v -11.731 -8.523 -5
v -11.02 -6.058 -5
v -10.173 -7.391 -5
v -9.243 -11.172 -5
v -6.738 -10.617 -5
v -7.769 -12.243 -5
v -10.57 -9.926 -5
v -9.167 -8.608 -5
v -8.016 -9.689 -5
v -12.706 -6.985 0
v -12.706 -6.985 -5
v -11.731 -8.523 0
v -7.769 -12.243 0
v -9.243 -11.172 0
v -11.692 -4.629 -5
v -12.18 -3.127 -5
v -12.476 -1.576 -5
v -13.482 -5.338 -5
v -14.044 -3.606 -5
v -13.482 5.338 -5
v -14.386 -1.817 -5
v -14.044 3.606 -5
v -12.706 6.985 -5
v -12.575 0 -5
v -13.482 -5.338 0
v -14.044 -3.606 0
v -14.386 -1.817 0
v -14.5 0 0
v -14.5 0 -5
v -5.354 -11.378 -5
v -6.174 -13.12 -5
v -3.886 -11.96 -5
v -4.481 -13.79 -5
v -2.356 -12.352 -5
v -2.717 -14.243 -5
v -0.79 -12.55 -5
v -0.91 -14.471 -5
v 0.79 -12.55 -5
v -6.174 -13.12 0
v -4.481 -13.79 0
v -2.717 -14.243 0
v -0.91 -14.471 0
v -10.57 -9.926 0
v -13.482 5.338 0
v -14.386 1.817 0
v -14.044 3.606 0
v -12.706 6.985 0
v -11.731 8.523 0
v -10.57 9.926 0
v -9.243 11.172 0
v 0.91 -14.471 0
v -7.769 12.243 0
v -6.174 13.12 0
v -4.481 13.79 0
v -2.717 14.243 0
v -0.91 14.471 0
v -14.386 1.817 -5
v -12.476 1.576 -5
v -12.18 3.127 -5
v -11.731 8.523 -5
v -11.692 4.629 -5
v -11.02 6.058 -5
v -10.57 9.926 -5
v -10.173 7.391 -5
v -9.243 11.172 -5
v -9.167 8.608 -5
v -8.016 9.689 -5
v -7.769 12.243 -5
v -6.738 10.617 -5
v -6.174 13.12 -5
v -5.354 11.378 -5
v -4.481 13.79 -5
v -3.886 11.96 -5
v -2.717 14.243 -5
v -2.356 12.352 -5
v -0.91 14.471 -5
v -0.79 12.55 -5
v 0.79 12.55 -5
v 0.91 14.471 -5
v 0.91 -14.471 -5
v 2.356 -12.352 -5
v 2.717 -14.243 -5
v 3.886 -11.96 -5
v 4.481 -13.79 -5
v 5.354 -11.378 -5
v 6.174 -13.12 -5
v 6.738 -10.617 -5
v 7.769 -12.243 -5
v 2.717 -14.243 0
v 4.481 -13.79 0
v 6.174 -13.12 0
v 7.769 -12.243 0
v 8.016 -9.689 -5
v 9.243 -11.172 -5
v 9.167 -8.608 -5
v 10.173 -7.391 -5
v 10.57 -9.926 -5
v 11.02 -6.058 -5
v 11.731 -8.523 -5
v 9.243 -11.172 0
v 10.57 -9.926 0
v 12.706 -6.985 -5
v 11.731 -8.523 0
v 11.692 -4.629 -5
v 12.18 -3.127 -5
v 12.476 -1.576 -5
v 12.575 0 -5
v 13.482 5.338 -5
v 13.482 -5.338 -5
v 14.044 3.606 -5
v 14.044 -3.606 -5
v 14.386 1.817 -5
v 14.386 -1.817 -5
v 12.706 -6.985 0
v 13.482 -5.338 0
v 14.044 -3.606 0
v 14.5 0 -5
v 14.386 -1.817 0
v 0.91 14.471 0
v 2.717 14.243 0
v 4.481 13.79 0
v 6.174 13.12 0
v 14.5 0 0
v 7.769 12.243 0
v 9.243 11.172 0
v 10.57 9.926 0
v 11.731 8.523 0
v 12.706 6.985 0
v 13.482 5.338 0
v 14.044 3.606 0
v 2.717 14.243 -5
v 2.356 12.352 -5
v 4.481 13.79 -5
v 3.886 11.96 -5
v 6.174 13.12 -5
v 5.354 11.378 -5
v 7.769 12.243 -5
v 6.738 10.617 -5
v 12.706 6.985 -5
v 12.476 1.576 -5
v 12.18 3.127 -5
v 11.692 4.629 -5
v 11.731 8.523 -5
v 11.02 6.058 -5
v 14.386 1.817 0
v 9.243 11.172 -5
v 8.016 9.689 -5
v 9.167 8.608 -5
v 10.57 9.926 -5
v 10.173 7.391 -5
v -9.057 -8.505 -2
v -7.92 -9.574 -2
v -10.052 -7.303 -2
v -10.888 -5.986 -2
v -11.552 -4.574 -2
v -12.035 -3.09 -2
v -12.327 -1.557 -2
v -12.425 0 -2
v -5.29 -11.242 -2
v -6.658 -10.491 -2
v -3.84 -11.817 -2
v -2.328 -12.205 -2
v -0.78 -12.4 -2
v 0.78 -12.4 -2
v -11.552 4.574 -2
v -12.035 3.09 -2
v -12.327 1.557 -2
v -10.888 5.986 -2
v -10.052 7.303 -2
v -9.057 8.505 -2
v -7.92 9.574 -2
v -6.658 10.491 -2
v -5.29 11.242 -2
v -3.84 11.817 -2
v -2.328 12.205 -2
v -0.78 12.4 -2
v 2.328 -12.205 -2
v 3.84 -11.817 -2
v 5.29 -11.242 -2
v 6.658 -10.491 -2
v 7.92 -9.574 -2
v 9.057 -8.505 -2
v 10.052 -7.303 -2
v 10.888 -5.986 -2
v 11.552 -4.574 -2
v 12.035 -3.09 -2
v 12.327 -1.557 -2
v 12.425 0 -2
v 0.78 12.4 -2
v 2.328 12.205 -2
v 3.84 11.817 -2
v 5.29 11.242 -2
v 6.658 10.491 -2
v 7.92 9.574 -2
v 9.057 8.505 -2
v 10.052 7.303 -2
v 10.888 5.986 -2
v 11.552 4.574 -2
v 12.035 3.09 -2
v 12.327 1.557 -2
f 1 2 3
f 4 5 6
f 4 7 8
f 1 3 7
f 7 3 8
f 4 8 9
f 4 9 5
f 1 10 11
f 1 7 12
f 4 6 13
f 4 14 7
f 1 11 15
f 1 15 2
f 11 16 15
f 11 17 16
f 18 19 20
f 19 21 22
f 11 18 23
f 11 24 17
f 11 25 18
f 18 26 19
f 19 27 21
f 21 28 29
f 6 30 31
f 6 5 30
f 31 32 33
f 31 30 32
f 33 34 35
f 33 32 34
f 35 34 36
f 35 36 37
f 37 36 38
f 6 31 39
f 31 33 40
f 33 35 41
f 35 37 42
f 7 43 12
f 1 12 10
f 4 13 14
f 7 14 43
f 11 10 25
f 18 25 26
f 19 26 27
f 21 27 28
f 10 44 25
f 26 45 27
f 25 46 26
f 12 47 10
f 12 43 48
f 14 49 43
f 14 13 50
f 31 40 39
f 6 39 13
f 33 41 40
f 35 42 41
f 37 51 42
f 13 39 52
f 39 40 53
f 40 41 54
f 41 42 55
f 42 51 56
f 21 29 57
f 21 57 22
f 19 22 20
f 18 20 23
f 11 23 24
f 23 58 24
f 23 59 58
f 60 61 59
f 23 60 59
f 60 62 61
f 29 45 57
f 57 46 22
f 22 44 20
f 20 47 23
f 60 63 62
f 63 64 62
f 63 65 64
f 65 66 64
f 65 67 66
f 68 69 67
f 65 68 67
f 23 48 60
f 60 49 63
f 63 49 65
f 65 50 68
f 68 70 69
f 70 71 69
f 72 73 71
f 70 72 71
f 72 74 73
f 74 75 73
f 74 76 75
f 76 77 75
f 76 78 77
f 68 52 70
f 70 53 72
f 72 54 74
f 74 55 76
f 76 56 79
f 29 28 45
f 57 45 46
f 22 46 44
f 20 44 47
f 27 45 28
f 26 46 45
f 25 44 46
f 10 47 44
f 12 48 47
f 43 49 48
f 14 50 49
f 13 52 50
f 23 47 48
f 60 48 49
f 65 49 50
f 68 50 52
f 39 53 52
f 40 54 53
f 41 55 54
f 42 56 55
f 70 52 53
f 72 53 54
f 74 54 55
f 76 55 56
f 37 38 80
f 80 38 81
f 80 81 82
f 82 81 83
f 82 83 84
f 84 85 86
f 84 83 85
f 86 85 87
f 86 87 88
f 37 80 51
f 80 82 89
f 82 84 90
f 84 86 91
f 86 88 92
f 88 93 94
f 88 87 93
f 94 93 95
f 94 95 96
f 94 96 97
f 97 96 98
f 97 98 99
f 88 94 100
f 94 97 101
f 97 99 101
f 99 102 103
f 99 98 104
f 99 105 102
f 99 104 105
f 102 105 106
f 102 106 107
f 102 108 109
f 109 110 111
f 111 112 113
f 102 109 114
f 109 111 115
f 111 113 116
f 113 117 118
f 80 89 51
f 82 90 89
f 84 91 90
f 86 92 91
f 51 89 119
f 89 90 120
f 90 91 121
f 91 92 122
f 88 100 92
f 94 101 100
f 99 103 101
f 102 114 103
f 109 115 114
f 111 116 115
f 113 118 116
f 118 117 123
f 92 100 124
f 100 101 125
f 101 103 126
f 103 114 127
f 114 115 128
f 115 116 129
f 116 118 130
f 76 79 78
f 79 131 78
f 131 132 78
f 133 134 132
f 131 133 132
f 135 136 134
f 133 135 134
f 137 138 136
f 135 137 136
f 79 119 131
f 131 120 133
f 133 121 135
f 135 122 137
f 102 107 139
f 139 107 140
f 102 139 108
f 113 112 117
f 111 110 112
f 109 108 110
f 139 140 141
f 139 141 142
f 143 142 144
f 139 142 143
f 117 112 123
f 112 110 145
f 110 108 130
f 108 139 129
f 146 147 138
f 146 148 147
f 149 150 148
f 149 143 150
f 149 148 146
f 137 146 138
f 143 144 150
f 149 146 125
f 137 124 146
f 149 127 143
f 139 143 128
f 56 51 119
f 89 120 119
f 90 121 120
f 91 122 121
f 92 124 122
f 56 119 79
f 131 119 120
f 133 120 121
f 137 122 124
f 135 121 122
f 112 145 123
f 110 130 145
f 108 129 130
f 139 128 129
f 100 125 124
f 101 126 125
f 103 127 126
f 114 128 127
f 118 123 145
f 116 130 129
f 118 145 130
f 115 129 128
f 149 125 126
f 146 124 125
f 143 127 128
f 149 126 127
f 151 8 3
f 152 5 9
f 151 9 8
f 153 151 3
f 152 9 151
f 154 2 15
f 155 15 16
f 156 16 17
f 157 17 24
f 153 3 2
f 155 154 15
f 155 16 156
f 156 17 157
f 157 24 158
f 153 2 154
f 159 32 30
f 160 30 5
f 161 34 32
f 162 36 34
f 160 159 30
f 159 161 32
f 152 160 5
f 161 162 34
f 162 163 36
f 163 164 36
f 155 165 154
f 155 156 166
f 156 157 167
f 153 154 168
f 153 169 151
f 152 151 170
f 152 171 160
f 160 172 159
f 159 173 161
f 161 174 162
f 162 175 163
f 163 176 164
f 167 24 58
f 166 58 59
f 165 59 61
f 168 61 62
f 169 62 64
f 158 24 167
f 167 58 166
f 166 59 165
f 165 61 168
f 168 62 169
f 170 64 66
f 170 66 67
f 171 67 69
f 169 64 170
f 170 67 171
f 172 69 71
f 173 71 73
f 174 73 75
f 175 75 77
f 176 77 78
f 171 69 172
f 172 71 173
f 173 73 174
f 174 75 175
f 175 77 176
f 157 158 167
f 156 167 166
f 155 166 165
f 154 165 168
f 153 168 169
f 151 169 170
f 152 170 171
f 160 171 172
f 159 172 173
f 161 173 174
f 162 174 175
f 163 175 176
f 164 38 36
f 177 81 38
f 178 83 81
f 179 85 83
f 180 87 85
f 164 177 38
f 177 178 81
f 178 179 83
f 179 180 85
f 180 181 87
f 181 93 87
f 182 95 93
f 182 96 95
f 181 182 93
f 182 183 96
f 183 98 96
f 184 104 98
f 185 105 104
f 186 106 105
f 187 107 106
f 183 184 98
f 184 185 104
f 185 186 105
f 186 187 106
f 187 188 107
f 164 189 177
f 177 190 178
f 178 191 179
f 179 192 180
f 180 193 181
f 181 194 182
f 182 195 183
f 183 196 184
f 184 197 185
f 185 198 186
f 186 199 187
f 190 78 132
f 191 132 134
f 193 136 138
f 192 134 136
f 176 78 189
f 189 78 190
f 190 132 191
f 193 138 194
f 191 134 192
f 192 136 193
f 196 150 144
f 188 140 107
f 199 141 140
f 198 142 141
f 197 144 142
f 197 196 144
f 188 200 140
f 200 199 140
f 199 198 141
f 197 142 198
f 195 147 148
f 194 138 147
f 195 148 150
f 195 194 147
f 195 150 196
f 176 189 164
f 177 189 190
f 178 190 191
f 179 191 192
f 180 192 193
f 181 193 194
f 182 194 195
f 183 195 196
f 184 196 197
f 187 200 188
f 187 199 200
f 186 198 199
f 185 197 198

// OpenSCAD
$fn = 50;

difference() {
	union() {
		translate(v = [0, 0, -5.0]) {
			cylinder(h = 5, r = 14.5);
		}
	}
	union() {
		#translate(v = [0, 0, -5.0]) {
			cylinder(h = 3, r1 = 12.575, r2 = 12.425);
		}
	}
}
